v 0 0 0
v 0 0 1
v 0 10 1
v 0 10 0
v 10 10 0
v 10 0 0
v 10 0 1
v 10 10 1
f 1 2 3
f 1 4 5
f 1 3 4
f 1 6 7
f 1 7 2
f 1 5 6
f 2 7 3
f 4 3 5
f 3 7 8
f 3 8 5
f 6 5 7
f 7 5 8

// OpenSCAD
/* Warning, this is a very basic generator with a lot of approximation 
input data : [TQFP, CTA, 10x10x1.0mm, 64, , A, C04-01176A]
generated by com.zoubworld.electronics.cad.model3d.Basic
Date : Sun Feb 15 10:50:49 CET 2026
*/

//body
color("black")
translate([0,0,0])
cube([10.0,10.0,1.0], center=false);
